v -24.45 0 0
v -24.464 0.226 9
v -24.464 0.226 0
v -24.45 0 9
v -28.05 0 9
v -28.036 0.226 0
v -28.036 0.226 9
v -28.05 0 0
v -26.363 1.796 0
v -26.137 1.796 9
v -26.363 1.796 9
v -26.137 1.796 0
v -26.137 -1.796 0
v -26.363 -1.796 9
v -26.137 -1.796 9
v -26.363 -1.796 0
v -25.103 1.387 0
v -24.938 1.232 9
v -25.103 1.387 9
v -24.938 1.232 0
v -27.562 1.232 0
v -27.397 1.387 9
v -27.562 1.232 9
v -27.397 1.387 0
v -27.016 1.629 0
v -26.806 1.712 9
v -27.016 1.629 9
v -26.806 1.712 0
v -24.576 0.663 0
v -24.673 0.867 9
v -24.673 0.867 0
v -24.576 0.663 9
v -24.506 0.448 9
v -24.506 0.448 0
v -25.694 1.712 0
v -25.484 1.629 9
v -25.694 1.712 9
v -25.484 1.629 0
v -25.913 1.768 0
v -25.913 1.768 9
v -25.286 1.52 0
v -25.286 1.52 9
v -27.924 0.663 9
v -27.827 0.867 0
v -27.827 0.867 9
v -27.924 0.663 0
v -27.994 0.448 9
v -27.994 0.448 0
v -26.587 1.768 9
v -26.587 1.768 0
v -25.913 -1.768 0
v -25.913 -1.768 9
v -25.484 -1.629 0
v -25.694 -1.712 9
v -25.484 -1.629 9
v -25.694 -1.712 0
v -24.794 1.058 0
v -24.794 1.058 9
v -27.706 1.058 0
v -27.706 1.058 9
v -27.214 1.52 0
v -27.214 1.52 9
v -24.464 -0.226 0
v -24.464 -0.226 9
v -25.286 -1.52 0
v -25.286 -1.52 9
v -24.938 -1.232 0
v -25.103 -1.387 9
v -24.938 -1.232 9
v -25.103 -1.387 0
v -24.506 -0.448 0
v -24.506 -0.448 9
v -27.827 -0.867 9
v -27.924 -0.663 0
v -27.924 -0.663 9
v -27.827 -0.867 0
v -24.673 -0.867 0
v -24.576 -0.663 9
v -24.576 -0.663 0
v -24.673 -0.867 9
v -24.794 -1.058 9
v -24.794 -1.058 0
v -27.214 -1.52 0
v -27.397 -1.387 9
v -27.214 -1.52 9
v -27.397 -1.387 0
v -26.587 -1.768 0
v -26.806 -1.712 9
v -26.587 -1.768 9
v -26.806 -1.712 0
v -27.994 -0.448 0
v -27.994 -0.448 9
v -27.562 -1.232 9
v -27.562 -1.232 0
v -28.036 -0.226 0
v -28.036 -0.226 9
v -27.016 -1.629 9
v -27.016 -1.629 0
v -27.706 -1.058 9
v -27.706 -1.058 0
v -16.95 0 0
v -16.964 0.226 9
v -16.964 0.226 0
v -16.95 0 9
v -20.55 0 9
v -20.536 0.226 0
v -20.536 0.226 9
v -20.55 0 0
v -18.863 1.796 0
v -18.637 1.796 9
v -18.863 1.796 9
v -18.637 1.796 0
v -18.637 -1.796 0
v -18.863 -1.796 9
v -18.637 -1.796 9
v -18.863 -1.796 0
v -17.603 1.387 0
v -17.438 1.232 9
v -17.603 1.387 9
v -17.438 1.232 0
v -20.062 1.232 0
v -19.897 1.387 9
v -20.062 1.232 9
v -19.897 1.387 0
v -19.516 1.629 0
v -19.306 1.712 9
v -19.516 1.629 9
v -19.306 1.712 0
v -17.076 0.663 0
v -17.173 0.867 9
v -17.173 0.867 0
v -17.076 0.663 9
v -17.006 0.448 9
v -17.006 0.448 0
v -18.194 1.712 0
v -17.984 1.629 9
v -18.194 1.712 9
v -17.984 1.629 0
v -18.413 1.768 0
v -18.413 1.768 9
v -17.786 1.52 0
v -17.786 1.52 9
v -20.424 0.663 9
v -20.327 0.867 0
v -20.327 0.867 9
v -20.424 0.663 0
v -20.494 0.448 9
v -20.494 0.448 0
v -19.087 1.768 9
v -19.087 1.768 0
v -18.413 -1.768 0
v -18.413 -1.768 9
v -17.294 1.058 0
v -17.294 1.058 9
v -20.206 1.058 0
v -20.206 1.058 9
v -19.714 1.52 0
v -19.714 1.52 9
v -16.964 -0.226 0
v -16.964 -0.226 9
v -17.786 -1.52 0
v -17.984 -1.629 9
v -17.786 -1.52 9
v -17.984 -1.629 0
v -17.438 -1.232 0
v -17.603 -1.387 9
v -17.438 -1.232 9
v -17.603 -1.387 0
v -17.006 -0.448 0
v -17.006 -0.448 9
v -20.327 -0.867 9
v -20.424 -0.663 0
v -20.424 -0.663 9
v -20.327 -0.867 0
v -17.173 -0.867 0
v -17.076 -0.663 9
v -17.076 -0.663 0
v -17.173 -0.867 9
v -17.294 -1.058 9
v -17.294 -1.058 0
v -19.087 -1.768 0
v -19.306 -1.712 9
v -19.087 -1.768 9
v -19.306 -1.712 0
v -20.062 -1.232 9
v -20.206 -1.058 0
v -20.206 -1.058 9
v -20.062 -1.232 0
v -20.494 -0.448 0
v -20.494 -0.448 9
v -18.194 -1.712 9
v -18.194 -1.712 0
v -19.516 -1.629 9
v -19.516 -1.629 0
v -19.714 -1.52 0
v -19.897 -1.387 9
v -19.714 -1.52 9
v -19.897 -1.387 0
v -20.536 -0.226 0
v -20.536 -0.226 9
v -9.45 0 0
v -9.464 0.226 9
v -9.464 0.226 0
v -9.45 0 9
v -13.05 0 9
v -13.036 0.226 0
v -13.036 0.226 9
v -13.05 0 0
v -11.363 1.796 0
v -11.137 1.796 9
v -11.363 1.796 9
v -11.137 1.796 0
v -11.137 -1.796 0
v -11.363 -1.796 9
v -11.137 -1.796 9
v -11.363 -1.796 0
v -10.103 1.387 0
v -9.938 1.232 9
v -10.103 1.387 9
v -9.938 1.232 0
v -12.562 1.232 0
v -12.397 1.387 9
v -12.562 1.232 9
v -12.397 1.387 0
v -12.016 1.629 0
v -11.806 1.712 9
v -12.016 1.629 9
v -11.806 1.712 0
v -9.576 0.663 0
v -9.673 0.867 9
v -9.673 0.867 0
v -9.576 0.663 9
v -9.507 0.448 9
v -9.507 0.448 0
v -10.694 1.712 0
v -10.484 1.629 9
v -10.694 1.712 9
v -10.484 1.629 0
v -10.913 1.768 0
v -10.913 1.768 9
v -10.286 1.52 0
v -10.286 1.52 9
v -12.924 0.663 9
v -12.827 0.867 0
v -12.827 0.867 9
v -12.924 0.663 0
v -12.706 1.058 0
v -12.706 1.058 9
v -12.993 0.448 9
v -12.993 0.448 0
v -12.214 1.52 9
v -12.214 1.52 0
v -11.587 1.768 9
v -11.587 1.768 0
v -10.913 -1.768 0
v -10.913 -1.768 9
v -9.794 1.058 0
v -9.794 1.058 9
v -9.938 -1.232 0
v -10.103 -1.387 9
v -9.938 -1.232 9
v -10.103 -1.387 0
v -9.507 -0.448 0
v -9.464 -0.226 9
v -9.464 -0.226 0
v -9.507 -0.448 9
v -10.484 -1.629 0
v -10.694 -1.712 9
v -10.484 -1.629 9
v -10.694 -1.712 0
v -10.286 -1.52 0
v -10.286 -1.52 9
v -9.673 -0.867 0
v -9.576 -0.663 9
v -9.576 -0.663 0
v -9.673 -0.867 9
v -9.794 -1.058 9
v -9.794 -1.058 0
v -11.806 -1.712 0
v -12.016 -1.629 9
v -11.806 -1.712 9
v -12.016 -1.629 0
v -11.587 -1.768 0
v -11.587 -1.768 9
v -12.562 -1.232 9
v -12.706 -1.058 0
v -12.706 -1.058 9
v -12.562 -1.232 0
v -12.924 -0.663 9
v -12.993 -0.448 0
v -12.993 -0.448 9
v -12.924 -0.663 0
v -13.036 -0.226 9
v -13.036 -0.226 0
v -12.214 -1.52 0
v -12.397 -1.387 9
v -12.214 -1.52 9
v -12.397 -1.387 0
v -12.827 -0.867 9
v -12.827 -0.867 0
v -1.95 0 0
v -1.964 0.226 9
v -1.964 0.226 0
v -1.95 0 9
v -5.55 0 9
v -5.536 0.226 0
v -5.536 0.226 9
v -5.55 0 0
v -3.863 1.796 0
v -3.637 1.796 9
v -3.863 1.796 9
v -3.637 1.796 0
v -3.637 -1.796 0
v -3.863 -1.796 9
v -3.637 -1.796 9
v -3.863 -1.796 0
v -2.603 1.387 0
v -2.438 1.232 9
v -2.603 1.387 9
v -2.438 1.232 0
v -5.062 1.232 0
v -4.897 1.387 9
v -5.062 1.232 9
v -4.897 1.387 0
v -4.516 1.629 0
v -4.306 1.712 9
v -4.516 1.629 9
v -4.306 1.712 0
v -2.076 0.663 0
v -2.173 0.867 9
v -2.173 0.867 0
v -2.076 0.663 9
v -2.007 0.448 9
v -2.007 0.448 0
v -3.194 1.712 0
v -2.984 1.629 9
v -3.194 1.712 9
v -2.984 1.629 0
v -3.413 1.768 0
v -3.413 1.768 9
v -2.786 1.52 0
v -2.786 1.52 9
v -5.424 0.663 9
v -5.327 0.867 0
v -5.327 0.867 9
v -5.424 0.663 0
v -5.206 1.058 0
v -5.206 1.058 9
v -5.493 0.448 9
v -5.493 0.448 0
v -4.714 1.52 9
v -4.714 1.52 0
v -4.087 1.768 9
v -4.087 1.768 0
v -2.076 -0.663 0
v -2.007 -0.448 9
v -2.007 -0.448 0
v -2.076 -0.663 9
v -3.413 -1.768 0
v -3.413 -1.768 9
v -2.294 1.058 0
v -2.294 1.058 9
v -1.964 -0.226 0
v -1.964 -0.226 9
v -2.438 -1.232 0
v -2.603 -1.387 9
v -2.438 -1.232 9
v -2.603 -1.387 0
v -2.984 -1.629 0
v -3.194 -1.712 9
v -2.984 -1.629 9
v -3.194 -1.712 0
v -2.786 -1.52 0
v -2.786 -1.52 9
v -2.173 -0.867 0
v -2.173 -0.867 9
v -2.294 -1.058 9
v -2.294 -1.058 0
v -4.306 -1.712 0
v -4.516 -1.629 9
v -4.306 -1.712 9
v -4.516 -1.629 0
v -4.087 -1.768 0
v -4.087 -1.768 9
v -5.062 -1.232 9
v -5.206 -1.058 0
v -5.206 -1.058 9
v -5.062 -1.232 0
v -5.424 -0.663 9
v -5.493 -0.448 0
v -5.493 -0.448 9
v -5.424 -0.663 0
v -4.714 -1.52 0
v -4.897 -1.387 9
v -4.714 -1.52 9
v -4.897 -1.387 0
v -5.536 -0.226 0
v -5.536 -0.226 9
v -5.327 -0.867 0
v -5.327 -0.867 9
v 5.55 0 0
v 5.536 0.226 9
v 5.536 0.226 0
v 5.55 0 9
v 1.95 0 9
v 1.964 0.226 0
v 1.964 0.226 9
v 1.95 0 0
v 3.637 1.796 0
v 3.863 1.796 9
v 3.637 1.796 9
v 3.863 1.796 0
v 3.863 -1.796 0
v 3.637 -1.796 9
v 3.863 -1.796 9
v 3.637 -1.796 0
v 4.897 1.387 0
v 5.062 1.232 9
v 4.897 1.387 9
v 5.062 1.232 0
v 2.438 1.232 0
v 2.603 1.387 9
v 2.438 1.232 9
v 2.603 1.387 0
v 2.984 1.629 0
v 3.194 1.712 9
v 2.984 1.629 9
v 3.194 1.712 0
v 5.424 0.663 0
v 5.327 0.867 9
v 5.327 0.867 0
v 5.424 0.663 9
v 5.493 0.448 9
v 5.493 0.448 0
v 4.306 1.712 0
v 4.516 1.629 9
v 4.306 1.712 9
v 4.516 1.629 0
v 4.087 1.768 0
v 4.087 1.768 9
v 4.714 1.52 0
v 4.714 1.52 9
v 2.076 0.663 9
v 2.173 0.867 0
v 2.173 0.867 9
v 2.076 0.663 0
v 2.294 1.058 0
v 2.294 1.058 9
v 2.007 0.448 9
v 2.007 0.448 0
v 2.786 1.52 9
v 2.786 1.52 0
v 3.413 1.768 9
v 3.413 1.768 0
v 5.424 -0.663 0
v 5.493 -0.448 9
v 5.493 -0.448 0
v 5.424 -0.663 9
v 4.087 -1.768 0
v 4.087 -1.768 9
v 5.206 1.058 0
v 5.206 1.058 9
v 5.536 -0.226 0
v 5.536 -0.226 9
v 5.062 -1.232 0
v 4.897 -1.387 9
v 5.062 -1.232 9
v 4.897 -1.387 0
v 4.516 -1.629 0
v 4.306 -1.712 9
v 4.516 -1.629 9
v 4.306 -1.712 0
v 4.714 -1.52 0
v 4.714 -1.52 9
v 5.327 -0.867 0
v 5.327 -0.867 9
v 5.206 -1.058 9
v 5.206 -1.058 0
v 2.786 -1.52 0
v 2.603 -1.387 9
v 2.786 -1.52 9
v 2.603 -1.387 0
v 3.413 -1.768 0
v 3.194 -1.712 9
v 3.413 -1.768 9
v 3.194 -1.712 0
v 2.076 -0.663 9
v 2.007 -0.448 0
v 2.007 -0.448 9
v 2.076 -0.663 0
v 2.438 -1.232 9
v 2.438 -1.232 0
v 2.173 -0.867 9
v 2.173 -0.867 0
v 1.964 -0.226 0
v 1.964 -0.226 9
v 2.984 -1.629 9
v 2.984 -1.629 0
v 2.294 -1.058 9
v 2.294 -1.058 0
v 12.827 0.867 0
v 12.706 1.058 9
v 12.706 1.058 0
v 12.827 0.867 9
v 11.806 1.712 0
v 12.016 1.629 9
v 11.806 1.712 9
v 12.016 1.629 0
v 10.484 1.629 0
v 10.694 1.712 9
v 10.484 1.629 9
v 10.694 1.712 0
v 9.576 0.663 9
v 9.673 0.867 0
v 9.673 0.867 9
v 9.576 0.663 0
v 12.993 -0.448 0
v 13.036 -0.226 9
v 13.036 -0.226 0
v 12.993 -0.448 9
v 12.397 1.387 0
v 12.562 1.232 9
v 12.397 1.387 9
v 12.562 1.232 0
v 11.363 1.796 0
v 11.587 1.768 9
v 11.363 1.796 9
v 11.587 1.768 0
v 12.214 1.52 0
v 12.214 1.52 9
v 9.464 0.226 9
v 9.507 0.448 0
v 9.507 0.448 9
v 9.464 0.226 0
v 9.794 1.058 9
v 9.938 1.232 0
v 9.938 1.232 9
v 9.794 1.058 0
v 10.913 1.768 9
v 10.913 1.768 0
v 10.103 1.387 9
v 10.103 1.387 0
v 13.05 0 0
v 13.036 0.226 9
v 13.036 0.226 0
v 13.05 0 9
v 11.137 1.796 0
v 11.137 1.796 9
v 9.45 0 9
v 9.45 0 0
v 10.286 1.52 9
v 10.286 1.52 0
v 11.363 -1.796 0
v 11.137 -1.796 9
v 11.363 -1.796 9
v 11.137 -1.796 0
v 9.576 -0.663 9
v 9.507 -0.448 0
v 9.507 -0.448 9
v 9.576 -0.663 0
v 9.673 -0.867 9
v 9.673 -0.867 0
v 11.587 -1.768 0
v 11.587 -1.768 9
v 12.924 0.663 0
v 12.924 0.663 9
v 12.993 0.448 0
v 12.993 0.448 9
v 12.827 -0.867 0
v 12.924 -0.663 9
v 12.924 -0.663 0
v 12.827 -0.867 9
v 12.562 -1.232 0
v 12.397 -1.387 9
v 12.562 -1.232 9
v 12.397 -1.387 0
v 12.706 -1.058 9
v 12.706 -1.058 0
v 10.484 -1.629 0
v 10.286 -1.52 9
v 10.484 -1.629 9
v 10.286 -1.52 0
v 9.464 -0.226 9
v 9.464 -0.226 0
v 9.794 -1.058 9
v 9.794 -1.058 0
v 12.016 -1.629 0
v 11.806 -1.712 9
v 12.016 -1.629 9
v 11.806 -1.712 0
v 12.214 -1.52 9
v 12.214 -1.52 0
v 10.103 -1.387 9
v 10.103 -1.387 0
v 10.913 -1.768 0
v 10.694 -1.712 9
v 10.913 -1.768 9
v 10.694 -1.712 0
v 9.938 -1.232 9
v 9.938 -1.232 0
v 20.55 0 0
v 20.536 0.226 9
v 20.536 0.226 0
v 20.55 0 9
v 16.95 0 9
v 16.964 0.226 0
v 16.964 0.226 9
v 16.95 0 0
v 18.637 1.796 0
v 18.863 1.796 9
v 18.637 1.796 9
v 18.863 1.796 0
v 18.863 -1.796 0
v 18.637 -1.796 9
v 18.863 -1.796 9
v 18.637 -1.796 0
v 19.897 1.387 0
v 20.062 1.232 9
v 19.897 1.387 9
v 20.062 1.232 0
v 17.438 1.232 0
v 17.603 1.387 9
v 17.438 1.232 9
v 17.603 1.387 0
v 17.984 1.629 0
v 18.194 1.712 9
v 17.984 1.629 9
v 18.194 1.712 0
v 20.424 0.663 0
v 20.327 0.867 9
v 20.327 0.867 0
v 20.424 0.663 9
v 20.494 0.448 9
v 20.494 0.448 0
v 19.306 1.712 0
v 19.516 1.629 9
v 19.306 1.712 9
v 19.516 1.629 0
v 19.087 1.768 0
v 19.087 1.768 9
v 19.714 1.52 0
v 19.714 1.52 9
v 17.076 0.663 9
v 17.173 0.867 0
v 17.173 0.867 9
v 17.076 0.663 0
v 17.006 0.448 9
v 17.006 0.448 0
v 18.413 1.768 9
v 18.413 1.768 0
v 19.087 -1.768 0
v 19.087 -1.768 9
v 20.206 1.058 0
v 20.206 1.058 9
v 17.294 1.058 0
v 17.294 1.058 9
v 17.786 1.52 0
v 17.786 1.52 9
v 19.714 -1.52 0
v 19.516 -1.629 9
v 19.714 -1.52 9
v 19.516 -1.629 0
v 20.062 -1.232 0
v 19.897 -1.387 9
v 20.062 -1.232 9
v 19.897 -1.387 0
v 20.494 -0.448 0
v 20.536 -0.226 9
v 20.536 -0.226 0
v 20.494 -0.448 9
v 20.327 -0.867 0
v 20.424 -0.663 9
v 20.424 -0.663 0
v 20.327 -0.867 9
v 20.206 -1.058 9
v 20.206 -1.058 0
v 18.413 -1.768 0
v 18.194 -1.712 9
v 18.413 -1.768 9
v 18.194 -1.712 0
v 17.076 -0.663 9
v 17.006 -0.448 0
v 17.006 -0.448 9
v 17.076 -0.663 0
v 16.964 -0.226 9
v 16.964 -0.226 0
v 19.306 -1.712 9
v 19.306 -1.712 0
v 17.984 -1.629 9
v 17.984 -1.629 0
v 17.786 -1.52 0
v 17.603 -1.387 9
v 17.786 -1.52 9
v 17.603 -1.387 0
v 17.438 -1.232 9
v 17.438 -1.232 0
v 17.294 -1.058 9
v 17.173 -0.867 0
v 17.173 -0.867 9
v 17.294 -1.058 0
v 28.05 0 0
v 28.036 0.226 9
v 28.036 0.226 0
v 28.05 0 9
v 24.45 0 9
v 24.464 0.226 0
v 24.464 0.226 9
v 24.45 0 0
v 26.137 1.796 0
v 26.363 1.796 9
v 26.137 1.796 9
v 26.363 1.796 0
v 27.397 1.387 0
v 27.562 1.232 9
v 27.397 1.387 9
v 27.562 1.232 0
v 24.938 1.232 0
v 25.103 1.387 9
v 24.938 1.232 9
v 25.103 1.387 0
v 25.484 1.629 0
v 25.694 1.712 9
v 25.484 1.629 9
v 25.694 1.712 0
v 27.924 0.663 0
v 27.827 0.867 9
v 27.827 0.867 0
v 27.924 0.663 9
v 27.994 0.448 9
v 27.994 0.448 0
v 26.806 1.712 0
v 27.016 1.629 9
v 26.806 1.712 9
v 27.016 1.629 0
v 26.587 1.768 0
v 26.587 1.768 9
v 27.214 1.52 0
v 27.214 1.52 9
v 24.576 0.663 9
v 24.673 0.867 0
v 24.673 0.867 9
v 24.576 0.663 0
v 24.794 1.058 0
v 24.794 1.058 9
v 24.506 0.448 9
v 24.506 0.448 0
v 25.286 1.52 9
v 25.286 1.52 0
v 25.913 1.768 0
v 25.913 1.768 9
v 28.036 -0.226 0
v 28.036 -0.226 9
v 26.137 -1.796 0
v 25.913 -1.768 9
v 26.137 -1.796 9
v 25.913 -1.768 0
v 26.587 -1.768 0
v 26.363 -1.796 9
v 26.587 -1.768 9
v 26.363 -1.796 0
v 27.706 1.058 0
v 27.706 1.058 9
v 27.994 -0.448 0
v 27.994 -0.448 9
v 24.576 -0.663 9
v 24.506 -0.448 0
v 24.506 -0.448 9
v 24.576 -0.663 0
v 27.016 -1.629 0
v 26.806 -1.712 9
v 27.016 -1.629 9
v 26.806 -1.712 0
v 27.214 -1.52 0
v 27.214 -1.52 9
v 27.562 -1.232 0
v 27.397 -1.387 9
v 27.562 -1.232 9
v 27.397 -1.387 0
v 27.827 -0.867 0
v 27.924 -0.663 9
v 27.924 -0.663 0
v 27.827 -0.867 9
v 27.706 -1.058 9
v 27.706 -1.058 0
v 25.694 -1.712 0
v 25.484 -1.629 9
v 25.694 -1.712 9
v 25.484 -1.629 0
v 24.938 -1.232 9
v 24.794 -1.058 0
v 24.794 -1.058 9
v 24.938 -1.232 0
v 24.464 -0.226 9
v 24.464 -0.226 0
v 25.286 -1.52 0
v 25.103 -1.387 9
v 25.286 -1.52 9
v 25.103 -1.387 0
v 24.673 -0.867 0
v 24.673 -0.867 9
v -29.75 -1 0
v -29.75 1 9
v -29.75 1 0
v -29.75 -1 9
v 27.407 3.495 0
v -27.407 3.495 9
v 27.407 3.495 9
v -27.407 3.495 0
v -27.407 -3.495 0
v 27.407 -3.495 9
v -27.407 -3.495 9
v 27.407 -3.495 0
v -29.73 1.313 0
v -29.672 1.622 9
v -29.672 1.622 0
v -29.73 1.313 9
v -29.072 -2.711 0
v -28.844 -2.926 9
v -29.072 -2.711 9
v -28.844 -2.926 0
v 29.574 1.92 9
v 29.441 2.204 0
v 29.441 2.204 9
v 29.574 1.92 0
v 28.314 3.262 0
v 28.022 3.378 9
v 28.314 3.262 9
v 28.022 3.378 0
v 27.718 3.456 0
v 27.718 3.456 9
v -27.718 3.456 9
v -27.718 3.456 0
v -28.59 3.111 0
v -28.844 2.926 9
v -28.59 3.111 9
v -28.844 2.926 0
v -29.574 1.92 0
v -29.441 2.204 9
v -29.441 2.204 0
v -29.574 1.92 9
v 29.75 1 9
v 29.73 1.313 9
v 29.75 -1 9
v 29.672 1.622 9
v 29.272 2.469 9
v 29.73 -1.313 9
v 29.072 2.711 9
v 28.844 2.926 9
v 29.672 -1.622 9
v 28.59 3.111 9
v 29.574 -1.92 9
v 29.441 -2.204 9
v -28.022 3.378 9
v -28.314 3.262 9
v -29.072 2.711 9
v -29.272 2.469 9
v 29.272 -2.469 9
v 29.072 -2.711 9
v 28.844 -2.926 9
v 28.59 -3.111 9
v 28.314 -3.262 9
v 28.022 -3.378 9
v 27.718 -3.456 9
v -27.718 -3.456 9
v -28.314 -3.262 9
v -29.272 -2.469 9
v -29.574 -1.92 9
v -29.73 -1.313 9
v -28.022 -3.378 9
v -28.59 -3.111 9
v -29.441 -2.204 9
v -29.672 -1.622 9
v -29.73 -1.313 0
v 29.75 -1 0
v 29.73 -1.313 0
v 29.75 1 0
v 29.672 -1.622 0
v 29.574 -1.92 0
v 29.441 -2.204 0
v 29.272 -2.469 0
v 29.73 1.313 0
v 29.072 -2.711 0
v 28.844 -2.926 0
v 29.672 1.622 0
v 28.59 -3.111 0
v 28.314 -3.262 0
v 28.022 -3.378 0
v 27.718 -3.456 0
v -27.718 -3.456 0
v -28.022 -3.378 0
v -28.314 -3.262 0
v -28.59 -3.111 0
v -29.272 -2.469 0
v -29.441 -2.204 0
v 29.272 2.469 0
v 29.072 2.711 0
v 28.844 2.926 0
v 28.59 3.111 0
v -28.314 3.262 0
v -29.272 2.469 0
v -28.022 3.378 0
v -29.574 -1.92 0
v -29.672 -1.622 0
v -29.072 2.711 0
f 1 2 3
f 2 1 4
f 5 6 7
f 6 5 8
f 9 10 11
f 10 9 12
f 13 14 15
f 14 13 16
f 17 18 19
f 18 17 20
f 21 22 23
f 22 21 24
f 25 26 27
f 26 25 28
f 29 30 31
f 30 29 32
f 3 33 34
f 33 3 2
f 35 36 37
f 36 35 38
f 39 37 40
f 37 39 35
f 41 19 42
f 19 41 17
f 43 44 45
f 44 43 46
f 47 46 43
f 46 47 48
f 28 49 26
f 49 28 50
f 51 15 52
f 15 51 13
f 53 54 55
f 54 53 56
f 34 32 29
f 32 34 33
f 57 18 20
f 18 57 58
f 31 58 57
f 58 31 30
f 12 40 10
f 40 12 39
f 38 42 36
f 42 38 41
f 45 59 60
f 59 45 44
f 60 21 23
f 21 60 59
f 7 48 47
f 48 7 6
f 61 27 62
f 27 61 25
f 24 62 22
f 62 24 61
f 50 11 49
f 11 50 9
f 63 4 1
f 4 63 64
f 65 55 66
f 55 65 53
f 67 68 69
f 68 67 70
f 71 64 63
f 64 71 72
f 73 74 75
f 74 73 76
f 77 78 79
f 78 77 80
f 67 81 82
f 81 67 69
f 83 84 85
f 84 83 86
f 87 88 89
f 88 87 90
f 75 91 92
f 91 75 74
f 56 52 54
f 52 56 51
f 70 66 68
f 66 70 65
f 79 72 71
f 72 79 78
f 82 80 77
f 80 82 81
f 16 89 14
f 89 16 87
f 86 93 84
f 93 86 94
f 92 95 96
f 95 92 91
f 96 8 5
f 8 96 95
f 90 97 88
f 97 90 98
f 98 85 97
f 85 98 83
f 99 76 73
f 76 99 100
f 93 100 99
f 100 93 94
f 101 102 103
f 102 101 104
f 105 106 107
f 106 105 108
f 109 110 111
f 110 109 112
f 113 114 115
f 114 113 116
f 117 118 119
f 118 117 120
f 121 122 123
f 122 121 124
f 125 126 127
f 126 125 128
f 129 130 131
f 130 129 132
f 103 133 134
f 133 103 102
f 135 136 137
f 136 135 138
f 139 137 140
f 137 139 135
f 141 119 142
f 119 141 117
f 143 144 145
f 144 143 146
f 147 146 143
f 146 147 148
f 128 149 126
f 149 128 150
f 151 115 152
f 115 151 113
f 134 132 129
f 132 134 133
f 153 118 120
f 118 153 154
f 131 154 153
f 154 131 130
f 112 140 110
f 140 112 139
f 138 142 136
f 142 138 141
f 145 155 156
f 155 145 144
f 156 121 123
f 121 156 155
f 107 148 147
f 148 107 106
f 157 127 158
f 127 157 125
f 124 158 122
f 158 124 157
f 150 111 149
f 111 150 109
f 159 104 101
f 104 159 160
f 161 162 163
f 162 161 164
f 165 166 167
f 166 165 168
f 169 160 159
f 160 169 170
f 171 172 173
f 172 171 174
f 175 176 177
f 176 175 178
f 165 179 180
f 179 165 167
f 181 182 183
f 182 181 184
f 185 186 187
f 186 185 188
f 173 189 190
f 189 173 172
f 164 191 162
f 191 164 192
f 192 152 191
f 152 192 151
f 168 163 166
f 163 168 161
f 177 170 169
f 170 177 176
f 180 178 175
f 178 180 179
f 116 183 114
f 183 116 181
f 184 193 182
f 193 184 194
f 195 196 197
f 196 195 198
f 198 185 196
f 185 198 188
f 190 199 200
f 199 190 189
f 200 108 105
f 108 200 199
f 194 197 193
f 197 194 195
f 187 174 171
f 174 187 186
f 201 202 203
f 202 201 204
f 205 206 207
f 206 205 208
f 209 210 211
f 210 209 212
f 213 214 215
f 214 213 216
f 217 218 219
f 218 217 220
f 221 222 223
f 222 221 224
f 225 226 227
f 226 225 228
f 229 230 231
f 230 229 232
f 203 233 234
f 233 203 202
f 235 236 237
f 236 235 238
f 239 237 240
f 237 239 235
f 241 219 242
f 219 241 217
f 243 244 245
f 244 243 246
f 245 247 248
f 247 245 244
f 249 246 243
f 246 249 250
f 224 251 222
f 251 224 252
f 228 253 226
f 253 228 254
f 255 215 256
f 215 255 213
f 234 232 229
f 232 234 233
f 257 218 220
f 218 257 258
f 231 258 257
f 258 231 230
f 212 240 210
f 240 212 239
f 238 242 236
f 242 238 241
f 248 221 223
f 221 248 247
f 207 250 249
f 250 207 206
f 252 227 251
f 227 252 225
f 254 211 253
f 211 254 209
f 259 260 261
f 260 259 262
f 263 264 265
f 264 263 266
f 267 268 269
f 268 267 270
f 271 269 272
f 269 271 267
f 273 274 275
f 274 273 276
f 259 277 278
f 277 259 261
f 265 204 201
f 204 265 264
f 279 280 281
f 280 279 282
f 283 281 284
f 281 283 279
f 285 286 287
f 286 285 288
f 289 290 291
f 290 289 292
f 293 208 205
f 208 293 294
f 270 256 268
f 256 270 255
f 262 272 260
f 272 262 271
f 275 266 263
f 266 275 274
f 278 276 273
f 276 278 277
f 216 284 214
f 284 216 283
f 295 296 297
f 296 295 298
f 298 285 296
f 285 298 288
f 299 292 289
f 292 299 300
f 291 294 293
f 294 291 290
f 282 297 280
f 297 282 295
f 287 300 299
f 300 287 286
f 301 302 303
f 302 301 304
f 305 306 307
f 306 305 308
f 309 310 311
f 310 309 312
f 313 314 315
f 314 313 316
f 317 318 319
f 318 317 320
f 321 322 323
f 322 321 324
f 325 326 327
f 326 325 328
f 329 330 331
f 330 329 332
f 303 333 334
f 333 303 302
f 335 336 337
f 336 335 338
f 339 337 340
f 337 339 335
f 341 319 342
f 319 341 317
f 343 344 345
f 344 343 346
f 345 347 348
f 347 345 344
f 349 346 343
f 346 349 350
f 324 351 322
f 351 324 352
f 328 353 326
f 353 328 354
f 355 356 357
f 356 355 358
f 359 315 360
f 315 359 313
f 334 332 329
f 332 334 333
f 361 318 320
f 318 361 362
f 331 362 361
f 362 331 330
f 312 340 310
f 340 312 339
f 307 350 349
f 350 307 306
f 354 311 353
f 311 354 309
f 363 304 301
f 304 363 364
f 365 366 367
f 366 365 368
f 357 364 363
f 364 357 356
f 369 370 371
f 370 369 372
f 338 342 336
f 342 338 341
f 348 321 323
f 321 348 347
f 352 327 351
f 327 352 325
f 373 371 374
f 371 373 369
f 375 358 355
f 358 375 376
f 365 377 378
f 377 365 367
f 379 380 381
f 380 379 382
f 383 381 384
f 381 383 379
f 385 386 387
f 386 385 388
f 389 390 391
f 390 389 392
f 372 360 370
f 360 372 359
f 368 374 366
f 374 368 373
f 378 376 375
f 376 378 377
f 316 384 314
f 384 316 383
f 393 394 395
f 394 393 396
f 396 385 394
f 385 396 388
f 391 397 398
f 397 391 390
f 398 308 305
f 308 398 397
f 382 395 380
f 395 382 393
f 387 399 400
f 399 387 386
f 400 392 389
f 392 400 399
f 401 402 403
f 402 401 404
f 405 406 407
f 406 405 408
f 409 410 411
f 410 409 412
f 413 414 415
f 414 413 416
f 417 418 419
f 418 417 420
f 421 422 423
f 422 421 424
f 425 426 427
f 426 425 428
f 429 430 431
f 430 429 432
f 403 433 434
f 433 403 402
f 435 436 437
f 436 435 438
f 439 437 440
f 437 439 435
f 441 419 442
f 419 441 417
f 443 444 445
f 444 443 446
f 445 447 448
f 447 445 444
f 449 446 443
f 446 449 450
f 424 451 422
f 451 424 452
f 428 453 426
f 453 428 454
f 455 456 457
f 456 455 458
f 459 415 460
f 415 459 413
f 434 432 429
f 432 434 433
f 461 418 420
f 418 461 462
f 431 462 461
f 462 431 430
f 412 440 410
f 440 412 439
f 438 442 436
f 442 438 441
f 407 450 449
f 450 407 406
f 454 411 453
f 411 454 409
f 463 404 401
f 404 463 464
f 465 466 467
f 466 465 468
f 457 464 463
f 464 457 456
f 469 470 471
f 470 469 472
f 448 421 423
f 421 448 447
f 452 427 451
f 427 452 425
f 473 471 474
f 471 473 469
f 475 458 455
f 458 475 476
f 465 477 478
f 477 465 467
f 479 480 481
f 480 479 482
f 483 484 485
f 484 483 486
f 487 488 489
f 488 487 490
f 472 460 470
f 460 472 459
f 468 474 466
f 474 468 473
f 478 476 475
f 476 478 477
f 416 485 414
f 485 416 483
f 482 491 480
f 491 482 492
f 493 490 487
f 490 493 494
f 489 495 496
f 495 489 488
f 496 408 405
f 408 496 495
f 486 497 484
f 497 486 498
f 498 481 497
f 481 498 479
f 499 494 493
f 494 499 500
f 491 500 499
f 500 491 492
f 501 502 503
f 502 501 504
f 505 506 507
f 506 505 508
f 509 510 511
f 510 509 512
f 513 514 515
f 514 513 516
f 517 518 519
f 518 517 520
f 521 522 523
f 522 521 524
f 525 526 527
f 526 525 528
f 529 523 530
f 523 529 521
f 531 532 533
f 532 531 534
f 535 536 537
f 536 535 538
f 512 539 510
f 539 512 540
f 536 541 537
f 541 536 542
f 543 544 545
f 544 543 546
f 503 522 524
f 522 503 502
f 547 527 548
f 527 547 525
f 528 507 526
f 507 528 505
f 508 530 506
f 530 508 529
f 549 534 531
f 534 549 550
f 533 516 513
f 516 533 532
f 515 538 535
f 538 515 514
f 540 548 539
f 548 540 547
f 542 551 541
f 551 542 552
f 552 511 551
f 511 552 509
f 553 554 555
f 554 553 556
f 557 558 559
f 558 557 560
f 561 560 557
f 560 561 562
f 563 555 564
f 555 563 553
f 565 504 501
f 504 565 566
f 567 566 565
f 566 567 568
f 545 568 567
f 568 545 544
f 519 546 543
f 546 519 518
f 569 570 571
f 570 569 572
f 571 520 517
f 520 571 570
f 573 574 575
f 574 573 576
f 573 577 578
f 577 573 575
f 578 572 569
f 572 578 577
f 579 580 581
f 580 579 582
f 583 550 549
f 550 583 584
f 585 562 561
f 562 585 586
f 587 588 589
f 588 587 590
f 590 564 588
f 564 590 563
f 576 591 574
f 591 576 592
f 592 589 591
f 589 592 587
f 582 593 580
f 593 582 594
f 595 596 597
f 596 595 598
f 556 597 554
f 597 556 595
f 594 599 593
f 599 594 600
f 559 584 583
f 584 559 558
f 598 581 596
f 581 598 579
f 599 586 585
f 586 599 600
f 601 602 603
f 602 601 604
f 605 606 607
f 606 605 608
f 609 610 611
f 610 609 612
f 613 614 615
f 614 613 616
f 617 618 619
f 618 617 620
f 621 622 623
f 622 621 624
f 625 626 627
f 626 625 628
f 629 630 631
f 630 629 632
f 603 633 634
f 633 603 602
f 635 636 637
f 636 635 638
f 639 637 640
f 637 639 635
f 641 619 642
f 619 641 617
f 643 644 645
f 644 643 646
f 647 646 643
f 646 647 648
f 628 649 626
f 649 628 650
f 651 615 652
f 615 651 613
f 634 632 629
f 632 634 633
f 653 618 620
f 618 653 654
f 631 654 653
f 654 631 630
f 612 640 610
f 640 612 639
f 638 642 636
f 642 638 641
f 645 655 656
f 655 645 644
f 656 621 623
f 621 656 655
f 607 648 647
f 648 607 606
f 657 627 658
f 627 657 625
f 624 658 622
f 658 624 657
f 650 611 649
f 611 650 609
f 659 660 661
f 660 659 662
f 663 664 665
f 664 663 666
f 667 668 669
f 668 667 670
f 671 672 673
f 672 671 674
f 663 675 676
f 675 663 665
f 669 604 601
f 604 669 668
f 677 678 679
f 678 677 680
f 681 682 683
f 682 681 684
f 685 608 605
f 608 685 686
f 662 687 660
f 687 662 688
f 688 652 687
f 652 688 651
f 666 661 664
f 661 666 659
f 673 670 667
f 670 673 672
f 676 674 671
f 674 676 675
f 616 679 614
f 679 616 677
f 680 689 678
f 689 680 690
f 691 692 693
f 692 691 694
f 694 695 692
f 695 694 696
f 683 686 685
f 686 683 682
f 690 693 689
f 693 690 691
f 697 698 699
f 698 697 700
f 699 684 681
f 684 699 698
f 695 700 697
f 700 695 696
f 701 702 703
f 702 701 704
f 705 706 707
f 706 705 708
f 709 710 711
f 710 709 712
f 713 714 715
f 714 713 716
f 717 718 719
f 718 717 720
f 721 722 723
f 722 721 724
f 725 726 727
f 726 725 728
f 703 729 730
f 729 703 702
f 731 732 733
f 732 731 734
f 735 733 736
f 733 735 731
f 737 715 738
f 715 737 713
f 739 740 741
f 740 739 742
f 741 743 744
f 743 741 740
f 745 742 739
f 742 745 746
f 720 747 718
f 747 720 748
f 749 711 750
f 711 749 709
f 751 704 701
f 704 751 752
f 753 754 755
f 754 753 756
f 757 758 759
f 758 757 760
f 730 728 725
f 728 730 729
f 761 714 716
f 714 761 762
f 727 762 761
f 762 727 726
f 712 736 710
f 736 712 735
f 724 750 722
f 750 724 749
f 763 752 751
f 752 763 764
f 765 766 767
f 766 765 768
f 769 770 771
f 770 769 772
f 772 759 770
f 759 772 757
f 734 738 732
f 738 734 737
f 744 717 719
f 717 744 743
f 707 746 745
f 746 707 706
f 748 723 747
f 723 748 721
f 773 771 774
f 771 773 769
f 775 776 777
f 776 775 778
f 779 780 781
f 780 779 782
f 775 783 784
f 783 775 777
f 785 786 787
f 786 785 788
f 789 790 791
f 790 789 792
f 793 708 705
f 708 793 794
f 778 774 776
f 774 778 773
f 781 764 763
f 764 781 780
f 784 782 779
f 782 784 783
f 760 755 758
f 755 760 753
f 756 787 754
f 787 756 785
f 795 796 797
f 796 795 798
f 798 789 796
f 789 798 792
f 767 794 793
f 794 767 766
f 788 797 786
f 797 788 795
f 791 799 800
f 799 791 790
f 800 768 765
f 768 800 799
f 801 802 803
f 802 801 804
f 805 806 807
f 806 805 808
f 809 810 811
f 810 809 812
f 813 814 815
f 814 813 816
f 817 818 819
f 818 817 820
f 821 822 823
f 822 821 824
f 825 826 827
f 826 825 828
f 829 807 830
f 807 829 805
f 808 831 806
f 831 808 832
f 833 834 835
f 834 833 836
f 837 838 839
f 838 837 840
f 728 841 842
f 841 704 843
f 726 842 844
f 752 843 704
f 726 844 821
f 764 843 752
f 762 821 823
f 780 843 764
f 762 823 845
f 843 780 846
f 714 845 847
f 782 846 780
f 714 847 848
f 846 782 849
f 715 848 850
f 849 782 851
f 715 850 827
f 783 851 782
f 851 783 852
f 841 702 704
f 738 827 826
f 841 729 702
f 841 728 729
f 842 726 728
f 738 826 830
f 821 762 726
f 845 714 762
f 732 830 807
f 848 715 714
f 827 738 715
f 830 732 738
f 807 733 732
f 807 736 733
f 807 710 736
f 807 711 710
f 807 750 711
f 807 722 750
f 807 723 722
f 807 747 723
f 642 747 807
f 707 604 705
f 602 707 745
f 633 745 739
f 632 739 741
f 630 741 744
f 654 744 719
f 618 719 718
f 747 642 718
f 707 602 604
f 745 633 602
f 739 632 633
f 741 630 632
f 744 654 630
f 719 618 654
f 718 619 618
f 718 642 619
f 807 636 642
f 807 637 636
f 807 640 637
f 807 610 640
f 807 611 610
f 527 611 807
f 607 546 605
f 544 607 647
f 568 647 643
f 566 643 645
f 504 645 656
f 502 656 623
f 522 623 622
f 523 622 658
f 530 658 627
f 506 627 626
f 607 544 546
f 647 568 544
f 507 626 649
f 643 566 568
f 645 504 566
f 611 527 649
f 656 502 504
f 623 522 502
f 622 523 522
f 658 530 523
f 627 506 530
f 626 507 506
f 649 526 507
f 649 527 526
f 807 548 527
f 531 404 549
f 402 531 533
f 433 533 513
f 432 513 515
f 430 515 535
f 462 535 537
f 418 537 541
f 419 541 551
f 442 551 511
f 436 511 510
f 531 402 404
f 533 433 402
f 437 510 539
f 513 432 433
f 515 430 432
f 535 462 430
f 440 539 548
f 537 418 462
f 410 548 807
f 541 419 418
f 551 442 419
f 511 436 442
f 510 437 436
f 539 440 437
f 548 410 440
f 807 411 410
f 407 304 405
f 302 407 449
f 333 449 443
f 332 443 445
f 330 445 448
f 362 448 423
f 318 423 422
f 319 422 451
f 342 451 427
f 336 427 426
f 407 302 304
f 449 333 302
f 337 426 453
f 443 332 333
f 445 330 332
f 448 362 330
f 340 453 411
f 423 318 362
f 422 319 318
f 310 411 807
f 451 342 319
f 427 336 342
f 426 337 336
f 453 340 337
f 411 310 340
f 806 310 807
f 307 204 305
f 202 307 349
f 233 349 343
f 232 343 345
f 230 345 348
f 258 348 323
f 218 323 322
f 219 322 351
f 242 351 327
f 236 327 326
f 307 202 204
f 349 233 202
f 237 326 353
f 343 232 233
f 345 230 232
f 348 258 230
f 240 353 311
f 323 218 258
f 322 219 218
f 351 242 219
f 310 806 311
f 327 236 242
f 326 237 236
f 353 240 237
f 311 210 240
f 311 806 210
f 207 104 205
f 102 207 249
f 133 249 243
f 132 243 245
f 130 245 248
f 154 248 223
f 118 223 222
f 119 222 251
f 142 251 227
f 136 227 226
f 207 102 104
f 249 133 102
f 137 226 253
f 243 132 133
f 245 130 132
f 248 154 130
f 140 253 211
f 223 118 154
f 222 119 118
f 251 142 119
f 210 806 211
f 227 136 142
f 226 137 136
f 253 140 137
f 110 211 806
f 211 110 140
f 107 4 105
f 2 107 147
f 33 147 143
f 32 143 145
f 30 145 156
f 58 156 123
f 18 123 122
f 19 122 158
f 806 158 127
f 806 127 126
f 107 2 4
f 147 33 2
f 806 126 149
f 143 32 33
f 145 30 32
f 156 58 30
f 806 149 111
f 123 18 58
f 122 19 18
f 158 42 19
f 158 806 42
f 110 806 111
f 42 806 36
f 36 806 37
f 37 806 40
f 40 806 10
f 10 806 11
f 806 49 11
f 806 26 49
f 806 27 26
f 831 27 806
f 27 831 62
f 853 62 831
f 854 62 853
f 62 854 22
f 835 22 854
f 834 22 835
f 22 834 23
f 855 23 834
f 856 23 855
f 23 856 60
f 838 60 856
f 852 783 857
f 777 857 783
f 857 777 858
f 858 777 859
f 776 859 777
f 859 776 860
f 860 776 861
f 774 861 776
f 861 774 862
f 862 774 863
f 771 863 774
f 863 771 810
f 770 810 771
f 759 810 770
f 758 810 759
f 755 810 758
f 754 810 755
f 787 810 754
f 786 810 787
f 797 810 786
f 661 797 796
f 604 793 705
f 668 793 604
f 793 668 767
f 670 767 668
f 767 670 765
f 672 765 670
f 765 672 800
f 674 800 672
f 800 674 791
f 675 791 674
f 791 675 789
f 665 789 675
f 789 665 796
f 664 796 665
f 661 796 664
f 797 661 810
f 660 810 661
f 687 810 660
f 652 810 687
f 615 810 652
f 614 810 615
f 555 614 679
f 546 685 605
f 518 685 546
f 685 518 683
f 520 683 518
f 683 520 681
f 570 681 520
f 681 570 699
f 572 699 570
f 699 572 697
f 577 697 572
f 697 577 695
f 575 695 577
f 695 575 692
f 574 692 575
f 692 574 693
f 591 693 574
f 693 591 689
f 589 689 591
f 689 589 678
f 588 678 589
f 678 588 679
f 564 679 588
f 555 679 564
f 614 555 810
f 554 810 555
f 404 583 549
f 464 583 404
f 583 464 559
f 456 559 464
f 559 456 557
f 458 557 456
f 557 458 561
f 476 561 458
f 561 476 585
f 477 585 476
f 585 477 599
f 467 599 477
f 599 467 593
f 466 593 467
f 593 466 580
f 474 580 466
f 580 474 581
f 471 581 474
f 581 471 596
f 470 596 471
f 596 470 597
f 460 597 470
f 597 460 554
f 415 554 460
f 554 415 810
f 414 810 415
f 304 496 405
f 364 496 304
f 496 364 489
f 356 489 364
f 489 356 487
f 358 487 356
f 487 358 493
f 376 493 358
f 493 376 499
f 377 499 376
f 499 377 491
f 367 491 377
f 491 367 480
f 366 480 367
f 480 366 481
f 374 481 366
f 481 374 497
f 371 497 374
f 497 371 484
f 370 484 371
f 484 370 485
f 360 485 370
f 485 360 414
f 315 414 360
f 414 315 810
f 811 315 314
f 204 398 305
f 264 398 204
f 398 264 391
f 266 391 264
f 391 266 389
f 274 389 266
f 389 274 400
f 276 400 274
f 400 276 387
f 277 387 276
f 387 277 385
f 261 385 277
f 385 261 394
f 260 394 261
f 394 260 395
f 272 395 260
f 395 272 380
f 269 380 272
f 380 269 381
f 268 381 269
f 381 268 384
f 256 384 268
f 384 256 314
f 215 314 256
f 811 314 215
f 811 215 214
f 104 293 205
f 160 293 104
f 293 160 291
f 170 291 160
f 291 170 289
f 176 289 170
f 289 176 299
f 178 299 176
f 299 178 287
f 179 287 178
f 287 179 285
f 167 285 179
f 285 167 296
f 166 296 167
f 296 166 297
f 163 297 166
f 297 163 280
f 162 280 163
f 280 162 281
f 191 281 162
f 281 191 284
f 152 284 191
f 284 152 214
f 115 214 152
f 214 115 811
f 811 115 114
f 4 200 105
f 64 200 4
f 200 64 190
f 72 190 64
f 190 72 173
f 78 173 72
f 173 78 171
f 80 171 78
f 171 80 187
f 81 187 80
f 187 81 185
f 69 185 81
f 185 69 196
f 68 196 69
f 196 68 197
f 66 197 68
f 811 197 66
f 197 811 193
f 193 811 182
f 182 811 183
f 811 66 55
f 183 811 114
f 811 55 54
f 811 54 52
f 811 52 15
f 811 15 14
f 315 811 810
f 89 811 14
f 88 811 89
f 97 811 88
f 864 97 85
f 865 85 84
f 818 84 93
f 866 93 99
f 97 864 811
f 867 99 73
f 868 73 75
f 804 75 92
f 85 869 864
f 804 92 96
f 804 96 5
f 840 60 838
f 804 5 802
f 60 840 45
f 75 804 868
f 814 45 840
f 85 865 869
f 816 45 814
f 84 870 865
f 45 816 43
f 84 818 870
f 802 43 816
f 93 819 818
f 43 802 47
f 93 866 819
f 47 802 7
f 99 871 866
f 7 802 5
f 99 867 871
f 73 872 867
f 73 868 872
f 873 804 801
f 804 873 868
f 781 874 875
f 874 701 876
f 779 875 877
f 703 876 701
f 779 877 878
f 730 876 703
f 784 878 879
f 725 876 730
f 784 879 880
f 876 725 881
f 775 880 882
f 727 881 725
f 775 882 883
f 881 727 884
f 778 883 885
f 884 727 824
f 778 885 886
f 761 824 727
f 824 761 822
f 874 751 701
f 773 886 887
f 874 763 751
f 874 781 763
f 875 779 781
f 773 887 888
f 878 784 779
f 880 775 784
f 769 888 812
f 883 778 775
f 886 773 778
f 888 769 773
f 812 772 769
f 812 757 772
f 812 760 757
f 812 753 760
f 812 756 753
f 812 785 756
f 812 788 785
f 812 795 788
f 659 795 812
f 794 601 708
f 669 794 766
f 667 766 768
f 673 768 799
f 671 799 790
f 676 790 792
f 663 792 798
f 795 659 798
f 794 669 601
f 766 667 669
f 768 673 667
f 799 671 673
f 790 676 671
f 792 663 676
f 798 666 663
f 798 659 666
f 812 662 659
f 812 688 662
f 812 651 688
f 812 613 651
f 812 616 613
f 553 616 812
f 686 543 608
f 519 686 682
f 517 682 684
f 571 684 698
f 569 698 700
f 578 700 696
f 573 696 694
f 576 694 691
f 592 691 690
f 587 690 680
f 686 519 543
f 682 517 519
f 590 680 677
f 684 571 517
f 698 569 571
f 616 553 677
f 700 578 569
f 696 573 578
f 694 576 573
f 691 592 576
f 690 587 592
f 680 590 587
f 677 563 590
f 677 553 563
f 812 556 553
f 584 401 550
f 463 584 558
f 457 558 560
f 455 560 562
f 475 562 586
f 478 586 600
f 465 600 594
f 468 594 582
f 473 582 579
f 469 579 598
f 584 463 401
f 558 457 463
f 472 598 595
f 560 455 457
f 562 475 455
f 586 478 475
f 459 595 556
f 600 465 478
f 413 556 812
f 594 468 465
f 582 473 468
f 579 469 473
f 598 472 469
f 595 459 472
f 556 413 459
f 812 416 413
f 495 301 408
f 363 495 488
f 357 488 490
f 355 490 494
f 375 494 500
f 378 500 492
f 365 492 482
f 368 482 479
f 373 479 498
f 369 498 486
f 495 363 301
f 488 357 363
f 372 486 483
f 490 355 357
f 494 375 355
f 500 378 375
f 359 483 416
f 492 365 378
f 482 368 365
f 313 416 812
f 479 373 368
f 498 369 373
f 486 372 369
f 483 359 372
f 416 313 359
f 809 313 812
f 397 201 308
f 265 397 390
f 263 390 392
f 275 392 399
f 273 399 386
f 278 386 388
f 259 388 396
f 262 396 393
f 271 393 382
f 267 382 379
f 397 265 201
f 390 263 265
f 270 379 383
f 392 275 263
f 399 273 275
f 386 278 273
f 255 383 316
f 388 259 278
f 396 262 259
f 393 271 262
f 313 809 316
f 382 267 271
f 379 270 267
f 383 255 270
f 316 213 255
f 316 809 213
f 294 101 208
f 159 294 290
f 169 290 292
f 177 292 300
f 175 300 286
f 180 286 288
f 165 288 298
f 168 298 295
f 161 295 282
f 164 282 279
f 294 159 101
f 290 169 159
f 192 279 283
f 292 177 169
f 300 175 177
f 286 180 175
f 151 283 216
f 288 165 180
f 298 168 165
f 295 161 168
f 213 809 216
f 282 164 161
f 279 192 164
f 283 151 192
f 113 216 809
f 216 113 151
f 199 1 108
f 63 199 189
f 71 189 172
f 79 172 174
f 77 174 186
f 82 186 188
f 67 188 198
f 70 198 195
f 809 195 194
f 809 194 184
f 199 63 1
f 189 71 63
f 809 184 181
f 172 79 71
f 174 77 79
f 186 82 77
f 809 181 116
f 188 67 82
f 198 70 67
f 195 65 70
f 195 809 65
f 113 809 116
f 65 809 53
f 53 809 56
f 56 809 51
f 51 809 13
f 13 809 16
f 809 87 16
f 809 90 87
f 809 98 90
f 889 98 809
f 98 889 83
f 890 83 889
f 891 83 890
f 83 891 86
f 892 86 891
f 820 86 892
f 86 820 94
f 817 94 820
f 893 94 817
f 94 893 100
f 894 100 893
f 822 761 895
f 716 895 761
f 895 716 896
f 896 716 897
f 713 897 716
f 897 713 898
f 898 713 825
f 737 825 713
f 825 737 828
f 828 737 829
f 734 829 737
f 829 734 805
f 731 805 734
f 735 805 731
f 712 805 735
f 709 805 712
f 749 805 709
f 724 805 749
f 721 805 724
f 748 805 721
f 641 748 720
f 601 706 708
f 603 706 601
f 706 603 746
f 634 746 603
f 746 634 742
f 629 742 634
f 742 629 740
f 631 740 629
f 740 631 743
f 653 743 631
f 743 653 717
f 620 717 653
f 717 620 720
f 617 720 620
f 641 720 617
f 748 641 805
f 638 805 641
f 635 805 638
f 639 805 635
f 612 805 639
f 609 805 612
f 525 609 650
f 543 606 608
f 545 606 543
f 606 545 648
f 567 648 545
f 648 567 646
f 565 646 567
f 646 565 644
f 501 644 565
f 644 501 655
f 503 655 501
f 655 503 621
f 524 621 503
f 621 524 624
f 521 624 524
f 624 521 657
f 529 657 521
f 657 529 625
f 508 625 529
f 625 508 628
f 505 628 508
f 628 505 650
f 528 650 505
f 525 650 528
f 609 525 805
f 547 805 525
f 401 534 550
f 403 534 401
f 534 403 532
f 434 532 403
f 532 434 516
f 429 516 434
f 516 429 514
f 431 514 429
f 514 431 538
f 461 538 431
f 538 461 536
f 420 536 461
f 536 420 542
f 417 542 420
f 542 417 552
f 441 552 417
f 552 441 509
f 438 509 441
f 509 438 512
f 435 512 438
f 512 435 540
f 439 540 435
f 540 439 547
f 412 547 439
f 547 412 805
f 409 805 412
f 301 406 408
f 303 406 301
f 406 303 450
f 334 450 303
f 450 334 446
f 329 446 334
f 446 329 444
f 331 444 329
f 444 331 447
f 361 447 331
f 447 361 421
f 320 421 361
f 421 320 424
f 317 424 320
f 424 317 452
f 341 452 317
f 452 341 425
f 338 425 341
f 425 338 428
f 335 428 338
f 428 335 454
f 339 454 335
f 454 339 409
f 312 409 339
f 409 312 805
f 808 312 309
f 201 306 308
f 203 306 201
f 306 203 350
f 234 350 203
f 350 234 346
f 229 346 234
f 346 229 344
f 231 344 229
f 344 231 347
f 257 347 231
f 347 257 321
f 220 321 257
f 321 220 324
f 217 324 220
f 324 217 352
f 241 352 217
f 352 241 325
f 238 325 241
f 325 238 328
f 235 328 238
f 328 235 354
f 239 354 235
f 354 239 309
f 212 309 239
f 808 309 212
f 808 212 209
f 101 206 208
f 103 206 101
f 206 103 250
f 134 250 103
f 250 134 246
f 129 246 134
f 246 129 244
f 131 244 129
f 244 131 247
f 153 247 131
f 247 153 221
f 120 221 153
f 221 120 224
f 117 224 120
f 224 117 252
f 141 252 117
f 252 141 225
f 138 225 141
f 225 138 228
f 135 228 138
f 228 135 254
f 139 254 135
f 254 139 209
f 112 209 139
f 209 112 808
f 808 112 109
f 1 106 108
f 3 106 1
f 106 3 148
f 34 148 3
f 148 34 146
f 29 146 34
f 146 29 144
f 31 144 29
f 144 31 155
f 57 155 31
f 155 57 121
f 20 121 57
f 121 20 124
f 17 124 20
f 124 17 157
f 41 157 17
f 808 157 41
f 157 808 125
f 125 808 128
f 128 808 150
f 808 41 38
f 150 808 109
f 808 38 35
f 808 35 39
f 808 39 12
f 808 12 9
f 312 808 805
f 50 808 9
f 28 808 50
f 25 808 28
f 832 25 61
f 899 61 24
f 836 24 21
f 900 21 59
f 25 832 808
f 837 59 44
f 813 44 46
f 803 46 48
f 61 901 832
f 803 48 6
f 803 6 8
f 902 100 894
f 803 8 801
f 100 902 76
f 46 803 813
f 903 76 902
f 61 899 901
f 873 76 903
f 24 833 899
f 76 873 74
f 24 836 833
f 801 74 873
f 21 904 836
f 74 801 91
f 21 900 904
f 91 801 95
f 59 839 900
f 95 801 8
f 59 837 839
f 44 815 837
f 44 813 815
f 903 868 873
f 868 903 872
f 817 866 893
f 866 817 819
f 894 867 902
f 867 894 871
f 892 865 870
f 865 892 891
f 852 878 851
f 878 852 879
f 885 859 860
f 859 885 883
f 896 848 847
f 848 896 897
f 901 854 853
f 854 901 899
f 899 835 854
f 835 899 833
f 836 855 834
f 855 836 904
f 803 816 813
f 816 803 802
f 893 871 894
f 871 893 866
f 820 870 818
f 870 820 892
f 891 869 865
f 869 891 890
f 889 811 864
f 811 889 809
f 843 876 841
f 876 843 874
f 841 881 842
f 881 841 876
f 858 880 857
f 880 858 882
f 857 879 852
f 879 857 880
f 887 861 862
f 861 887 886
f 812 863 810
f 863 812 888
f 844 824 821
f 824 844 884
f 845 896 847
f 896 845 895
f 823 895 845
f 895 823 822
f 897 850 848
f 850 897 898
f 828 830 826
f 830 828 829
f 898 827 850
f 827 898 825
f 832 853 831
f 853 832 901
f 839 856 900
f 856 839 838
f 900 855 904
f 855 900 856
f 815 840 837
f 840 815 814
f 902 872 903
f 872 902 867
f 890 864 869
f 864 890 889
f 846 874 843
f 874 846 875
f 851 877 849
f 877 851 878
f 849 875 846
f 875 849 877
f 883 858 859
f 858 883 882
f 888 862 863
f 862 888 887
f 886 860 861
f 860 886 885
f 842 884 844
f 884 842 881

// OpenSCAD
$fn = 50;


difference() {
	union() {
		translate(v = [0, 0, 0]) {
			rotate(a = [0, 0, 0]) {
				hull() {
					translate(v = [-27.2500000000, 1.0000000000, 0]) {
						rotate(a = [0, 0, 0]) {
							translate(v = [0, 0, 0]) {
								rotate(a = [0, 0, 0]) {
									cylinder(h = 9, r = 2.5000000000);
								}
							}
						}
					}
					translate(v = [27.2500000000, 1.0000000000, 0]) {
						rotate(a = [0, 0, 0]) {
							translate(v = [0, 0, 0]) {
								rotate(a = [0, 0, 0]) {
									cylinder(h = 9, r = 2.5000000000);
								}
							}
						}
					}
					translate(v = [-27.2500000000, -1.0000000000, 0]) {
						rotate(a = [0, 0, 0]) {
							translate(v = [0, 0, 0]) {
								rotate(a = [0, 0, 0]) {
									cylinder(h = 9, r = 2.5000000000);
								}
							}
						}
					}
					translate(v = [27.2500000000, -1.0000000000, 0]) {
						rotate(a = [0, 0, 0]) {
							translate(v = [0, 0, 0]) {
								rotate(a = [0, 0, 0]) {
									cylinder(h = 9, r = 2.5000000000);
								}
							}
						}
					}
				}
			}
		}
	}
	union() {
		translate(v = [-26.2500000000, 0.0000000000, 0]) {
			rotate(a = [0, 0, 0]) {
				translate(v = [0, 0, -50]) {
					rotate(a = [0, 0, 0]) {
						cylinder(h = 100, r = 1.8000000000);
					}
				}
			}
		}
		translate(v = [-18.7500000000, 0.0000000000, 0]) {
			rotate(a = [0, 0, 0]) {
				translate(v = [0, 0, -50]) {
					rotate(a = [0, 0, 0]) {
						cylinder(h = 100, r = 1.8000000000);
					}
				}
			}
		}
		translate(v = [-11.2500000000, 0.0000000000, 0]) {
			rotate(a = [0, 0, 0]) {
				translate(v = [0, 0, -50]) {
					rotate(a = [0, 0, 0]) {
						cylinder(h = 100, r = 1.8000000000);
					}
				}
			}
		}
		translate(v = [-3.7500000000, 0.0000000000, 0]) {
			rotate(a = [0, 0, 0]) {
				translate(v = [0, 0, -50]) {
					rotate(a = [0, 0, 0]) {
						cylinder(h = 100, r = 1.8000000000);
					}
				}
			}
		}
		translate(v = [3.7500000000, 0.0000000000, 0]) {
			rotate(a = [0, 0, 0]) {
				translate(v = [0, 0, -50]) {
					rotate(a = [0, 0, 0]) {
						cylinder(h = 100, r = 1.8000000000);
					}
				}
			}
		}
		translate(v = [11.2500000000, 0.0000000000, 0]) {
			rotate(a = [0, 0, 0]) {
				translate(v = [0, 0, -50]) {
					rotate(a = [0, 0, 0]) {
						cylinder(h = 100, r = 1.8000000000);
					}
				}
			}
		}
		translate(v = [18.7500000000, 0.0000000000, 0]) {
			rotate(a = [0, 0, 0]) {
				translate(v = [0, 0, -50]) {
					rotate(a = [0, 0, 0]) {
						cylinder(h = 100, r = 1.8000000000);
					}
				}
			}
		}
		translate(v = [26.2500000000, 0.0000000000, 0]) {
			rotate(a = [0, 0, 0]) {
				translate(v = [0, 0, -50]) {
					rotate(a = [0, 0, 0]) {
						cylinder(h = 100, r = 1.8000000000);
					}
				}
			}
		}
	}
}
